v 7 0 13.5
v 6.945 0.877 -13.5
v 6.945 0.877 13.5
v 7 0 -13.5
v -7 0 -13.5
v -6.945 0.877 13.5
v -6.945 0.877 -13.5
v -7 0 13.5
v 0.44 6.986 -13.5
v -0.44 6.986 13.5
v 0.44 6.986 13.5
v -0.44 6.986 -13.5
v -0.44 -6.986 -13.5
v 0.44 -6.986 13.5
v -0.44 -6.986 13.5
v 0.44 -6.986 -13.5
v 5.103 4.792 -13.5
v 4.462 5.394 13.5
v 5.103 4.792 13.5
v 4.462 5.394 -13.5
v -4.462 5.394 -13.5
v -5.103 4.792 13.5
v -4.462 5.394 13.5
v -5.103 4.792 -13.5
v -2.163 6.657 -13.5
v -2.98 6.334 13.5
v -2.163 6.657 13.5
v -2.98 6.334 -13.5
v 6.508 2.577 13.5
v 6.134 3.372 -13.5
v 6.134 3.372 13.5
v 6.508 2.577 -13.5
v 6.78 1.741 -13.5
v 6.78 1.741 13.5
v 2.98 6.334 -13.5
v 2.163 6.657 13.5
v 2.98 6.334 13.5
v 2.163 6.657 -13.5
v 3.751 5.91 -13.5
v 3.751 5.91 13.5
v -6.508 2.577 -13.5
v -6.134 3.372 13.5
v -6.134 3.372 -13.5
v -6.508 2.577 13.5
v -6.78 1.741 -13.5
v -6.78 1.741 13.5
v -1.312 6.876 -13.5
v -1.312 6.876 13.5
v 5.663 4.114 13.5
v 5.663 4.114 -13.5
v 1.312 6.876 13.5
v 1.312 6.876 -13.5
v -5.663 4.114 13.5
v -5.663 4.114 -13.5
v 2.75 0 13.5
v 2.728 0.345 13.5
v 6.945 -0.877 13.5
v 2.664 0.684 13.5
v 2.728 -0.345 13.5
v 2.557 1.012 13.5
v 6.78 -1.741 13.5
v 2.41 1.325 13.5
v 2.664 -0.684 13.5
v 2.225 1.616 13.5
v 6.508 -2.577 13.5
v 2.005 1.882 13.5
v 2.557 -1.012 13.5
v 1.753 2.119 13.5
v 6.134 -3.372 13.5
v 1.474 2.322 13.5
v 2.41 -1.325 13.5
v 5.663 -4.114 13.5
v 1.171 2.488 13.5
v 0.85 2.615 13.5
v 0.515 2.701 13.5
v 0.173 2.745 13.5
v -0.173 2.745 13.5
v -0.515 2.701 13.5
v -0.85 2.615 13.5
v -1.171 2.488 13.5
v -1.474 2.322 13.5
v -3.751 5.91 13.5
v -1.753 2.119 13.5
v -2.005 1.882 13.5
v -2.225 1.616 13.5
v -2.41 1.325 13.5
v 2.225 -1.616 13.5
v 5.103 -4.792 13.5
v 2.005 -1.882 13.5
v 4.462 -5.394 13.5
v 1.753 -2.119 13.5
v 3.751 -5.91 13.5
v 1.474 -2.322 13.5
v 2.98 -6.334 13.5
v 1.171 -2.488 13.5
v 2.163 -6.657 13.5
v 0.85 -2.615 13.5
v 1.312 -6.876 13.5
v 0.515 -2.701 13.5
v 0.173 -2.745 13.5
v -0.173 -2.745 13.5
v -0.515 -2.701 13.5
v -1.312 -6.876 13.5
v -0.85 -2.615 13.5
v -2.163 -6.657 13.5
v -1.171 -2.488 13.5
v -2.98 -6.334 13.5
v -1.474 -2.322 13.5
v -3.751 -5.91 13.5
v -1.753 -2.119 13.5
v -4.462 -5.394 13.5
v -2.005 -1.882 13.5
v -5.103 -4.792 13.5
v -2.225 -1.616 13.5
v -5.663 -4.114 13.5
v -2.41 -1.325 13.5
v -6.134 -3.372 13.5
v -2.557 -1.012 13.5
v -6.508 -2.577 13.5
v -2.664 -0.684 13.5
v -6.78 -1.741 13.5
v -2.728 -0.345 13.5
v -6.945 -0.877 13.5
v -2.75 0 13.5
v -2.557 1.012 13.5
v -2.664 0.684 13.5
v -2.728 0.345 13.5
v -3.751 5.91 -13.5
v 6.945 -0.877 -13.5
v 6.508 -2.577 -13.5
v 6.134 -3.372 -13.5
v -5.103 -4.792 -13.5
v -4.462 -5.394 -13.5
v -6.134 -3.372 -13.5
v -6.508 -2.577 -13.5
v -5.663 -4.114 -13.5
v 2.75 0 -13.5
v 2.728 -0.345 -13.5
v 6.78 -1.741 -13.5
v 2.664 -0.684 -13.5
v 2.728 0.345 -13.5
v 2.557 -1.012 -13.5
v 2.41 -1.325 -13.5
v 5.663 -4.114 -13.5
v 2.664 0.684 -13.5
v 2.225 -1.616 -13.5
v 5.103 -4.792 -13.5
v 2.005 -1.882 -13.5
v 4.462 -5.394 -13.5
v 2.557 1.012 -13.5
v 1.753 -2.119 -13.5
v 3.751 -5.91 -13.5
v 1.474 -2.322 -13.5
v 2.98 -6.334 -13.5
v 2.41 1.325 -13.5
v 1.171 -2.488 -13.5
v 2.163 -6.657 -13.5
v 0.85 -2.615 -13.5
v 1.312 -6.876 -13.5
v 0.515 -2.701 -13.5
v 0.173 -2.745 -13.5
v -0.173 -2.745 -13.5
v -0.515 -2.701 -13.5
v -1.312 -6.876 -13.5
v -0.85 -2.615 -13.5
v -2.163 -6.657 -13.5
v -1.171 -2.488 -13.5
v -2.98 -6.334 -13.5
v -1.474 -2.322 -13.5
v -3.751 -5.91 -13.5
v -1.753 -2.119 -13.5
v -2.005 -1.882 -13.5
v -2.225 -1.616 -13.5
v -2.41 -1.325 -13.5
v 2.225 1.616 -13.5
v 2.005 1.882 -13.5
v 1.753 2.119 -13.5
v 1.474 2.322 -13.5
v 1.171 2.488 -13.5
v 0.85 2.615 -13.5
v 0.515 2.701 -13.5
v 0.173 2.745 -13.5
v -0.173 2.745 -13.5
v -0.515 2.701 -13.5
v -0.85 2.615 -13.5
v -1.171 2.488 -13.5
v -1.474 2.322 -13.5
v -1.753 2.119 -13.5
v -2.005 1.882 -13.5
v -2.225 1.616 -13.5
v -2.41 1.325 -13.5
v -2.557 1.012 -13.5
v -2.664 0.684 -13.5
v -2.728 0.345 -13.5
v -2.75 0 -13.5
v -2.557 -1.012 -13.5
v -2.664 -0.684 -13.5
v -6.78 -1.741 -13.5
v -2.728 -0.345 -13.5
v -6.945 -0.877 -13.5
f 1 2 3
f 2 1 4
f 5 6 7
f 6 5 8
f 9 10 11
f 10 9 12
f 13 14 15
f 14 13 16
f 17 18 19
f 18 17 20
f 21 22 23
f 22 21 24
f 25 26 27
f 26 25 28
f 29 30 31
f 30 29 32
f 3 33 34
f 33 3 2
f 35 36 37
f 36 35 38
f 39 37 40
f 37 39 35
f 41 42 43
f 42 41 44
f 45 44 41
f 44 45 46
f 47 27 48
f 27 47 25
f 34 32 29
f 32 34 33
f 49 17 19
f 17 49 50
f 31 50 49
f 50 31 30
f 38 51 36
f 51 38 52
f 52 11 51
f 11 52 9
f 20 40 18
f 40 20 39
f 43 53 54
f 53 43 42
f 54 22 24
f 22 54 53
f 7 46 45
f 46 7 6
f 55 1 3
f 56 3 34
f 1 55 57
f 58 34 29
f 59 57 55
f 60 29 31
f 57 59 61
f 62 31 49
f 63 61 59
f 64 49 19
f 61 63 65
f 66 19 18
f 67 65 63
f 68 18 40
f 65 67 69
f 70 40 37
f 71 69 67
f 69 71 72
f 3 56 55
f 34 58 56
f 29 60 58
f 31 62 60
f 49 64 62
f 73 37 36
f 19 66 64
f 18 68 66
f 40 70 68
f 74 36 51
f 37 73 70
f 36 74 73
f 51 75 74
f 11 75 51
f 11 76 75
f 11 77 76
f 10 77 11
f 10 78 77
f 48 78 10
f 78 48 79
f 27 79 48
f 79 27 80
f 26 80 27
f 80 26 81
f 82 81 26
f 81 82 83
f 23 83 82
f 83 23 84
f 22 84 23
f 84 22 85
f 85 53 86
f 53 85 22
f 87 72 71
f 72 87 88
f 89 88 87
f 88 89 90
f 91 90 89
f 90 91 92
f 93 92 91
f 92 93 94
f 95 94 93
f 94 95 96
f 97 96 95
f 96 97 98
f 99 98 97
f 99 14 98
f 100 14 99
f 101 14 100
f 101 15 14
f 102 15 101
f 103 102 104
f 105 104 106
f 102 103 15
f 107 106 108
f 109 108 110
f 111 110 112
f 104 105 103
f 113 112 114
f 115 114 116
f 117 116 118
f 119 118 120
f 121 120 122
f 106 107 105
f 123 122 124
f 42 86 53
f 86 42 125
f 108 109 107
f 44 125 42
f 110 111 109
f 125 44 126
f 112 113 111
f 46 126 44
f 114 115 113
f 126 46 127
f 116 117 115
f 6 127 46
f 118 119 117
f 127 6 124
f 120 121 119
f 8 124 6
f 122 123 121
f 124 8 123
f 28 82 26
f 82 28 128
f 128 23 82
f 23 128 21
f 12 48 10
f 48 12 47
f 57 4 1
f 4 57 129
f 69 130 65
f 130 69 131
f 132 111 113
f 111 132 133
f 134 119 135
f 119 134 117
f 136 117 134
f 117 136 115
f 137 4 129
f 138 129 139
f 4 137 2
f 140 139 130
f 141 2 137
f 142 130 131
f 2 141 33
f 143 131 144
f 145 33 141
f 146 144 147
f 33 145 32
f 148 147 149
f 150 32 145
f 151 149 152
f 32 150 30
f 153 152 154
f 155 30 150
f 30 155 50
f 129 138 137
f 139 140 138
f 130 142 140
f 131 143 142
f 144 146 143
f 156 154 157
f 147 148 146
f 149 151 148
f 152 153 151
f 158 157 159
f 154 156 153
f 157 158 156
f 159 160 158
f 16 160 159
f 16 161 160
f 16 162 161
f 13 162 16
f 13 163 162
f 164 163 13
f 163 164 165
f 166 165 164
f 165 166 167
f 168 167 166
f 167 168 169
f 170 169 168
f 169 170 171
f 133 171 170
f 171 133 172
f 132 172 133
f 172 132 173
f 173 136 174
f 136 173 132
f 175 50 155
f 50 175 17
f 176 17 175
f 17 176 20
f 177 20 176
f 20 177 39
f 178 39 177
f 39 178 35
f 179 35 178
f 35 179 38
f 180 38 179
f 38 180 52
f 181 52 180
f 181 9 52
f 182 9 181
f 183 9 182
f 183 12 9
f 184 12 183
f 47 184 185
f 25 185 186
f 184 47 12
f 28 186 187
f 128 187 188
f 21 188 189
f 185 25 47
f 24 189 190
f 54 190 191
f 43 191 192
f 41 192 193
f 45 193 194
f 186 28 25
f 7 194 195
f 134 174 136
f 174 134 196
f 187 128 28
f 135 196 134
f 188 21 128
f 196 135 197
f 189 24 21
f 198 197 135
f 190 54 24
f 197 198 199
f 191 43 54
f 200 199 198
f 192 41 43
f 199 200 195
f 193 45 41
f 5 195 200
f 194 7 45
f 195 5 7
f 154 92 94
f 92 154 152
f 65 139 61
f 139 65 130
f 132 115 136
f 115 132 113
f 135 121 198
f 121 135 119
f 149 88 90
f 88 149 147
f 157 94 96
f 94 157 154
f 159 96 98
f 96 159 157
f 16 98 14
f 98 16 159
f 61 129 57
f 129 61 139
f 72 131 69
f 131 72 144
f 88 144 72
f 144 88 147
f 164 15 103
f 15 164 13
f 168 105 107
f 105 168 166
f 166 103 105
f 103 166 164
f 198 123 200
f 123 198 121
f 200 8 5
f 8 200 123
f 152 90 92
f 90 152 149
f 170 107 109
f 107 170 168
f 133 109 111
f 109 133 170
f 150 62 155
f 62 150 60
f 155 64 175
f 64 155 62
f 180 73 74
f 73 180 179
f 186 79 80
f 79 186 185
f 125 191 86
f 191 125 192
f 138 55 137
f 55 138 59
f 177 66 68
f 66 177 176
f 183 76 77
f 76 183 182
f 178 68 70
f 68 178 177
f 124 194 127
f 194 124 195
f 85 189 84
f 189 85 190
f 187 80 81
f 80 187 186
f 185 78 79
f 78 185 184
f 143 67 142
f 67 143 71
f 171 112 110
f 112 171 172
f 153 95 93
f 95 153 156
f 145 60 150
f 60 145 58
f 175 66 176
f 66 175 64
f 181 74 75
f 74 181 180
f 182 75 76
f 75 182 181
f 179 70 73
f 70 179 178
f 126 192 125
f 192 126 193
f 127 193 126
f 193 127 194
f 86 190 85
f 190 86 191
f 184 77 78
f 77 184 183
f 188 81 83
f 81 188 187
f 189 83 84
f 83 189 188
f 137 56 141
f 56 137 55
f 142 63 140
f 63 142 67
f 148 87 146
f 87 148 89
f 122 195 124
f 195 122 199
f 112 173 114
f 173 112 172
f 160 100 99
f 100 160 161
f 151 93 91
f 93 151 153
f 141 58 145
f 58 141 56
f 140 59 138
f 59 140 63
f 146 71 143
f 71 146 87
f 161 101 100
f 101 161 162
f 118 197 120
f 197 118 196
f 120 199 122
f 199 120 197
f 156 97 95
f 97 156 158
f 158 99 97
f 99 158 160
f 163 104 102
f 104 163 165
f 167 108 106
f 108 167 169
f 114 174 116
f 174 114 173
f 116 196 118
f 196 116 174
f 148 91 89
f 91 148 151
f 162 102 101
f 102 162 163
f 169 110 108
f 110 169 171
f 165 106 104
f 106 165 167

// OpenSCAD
$fn = 50;


difference() {
	union() {
		translate(v = [0, 0, -13.5000000000]) {
			cylinder(h = 27, r = 7.0000000000);
		}
	}
	union() {
		translate(v = [0, 0, -100.0000000000]) {
			cylinder(h = 200, r = 2.7500000000);
		}
	}
}
